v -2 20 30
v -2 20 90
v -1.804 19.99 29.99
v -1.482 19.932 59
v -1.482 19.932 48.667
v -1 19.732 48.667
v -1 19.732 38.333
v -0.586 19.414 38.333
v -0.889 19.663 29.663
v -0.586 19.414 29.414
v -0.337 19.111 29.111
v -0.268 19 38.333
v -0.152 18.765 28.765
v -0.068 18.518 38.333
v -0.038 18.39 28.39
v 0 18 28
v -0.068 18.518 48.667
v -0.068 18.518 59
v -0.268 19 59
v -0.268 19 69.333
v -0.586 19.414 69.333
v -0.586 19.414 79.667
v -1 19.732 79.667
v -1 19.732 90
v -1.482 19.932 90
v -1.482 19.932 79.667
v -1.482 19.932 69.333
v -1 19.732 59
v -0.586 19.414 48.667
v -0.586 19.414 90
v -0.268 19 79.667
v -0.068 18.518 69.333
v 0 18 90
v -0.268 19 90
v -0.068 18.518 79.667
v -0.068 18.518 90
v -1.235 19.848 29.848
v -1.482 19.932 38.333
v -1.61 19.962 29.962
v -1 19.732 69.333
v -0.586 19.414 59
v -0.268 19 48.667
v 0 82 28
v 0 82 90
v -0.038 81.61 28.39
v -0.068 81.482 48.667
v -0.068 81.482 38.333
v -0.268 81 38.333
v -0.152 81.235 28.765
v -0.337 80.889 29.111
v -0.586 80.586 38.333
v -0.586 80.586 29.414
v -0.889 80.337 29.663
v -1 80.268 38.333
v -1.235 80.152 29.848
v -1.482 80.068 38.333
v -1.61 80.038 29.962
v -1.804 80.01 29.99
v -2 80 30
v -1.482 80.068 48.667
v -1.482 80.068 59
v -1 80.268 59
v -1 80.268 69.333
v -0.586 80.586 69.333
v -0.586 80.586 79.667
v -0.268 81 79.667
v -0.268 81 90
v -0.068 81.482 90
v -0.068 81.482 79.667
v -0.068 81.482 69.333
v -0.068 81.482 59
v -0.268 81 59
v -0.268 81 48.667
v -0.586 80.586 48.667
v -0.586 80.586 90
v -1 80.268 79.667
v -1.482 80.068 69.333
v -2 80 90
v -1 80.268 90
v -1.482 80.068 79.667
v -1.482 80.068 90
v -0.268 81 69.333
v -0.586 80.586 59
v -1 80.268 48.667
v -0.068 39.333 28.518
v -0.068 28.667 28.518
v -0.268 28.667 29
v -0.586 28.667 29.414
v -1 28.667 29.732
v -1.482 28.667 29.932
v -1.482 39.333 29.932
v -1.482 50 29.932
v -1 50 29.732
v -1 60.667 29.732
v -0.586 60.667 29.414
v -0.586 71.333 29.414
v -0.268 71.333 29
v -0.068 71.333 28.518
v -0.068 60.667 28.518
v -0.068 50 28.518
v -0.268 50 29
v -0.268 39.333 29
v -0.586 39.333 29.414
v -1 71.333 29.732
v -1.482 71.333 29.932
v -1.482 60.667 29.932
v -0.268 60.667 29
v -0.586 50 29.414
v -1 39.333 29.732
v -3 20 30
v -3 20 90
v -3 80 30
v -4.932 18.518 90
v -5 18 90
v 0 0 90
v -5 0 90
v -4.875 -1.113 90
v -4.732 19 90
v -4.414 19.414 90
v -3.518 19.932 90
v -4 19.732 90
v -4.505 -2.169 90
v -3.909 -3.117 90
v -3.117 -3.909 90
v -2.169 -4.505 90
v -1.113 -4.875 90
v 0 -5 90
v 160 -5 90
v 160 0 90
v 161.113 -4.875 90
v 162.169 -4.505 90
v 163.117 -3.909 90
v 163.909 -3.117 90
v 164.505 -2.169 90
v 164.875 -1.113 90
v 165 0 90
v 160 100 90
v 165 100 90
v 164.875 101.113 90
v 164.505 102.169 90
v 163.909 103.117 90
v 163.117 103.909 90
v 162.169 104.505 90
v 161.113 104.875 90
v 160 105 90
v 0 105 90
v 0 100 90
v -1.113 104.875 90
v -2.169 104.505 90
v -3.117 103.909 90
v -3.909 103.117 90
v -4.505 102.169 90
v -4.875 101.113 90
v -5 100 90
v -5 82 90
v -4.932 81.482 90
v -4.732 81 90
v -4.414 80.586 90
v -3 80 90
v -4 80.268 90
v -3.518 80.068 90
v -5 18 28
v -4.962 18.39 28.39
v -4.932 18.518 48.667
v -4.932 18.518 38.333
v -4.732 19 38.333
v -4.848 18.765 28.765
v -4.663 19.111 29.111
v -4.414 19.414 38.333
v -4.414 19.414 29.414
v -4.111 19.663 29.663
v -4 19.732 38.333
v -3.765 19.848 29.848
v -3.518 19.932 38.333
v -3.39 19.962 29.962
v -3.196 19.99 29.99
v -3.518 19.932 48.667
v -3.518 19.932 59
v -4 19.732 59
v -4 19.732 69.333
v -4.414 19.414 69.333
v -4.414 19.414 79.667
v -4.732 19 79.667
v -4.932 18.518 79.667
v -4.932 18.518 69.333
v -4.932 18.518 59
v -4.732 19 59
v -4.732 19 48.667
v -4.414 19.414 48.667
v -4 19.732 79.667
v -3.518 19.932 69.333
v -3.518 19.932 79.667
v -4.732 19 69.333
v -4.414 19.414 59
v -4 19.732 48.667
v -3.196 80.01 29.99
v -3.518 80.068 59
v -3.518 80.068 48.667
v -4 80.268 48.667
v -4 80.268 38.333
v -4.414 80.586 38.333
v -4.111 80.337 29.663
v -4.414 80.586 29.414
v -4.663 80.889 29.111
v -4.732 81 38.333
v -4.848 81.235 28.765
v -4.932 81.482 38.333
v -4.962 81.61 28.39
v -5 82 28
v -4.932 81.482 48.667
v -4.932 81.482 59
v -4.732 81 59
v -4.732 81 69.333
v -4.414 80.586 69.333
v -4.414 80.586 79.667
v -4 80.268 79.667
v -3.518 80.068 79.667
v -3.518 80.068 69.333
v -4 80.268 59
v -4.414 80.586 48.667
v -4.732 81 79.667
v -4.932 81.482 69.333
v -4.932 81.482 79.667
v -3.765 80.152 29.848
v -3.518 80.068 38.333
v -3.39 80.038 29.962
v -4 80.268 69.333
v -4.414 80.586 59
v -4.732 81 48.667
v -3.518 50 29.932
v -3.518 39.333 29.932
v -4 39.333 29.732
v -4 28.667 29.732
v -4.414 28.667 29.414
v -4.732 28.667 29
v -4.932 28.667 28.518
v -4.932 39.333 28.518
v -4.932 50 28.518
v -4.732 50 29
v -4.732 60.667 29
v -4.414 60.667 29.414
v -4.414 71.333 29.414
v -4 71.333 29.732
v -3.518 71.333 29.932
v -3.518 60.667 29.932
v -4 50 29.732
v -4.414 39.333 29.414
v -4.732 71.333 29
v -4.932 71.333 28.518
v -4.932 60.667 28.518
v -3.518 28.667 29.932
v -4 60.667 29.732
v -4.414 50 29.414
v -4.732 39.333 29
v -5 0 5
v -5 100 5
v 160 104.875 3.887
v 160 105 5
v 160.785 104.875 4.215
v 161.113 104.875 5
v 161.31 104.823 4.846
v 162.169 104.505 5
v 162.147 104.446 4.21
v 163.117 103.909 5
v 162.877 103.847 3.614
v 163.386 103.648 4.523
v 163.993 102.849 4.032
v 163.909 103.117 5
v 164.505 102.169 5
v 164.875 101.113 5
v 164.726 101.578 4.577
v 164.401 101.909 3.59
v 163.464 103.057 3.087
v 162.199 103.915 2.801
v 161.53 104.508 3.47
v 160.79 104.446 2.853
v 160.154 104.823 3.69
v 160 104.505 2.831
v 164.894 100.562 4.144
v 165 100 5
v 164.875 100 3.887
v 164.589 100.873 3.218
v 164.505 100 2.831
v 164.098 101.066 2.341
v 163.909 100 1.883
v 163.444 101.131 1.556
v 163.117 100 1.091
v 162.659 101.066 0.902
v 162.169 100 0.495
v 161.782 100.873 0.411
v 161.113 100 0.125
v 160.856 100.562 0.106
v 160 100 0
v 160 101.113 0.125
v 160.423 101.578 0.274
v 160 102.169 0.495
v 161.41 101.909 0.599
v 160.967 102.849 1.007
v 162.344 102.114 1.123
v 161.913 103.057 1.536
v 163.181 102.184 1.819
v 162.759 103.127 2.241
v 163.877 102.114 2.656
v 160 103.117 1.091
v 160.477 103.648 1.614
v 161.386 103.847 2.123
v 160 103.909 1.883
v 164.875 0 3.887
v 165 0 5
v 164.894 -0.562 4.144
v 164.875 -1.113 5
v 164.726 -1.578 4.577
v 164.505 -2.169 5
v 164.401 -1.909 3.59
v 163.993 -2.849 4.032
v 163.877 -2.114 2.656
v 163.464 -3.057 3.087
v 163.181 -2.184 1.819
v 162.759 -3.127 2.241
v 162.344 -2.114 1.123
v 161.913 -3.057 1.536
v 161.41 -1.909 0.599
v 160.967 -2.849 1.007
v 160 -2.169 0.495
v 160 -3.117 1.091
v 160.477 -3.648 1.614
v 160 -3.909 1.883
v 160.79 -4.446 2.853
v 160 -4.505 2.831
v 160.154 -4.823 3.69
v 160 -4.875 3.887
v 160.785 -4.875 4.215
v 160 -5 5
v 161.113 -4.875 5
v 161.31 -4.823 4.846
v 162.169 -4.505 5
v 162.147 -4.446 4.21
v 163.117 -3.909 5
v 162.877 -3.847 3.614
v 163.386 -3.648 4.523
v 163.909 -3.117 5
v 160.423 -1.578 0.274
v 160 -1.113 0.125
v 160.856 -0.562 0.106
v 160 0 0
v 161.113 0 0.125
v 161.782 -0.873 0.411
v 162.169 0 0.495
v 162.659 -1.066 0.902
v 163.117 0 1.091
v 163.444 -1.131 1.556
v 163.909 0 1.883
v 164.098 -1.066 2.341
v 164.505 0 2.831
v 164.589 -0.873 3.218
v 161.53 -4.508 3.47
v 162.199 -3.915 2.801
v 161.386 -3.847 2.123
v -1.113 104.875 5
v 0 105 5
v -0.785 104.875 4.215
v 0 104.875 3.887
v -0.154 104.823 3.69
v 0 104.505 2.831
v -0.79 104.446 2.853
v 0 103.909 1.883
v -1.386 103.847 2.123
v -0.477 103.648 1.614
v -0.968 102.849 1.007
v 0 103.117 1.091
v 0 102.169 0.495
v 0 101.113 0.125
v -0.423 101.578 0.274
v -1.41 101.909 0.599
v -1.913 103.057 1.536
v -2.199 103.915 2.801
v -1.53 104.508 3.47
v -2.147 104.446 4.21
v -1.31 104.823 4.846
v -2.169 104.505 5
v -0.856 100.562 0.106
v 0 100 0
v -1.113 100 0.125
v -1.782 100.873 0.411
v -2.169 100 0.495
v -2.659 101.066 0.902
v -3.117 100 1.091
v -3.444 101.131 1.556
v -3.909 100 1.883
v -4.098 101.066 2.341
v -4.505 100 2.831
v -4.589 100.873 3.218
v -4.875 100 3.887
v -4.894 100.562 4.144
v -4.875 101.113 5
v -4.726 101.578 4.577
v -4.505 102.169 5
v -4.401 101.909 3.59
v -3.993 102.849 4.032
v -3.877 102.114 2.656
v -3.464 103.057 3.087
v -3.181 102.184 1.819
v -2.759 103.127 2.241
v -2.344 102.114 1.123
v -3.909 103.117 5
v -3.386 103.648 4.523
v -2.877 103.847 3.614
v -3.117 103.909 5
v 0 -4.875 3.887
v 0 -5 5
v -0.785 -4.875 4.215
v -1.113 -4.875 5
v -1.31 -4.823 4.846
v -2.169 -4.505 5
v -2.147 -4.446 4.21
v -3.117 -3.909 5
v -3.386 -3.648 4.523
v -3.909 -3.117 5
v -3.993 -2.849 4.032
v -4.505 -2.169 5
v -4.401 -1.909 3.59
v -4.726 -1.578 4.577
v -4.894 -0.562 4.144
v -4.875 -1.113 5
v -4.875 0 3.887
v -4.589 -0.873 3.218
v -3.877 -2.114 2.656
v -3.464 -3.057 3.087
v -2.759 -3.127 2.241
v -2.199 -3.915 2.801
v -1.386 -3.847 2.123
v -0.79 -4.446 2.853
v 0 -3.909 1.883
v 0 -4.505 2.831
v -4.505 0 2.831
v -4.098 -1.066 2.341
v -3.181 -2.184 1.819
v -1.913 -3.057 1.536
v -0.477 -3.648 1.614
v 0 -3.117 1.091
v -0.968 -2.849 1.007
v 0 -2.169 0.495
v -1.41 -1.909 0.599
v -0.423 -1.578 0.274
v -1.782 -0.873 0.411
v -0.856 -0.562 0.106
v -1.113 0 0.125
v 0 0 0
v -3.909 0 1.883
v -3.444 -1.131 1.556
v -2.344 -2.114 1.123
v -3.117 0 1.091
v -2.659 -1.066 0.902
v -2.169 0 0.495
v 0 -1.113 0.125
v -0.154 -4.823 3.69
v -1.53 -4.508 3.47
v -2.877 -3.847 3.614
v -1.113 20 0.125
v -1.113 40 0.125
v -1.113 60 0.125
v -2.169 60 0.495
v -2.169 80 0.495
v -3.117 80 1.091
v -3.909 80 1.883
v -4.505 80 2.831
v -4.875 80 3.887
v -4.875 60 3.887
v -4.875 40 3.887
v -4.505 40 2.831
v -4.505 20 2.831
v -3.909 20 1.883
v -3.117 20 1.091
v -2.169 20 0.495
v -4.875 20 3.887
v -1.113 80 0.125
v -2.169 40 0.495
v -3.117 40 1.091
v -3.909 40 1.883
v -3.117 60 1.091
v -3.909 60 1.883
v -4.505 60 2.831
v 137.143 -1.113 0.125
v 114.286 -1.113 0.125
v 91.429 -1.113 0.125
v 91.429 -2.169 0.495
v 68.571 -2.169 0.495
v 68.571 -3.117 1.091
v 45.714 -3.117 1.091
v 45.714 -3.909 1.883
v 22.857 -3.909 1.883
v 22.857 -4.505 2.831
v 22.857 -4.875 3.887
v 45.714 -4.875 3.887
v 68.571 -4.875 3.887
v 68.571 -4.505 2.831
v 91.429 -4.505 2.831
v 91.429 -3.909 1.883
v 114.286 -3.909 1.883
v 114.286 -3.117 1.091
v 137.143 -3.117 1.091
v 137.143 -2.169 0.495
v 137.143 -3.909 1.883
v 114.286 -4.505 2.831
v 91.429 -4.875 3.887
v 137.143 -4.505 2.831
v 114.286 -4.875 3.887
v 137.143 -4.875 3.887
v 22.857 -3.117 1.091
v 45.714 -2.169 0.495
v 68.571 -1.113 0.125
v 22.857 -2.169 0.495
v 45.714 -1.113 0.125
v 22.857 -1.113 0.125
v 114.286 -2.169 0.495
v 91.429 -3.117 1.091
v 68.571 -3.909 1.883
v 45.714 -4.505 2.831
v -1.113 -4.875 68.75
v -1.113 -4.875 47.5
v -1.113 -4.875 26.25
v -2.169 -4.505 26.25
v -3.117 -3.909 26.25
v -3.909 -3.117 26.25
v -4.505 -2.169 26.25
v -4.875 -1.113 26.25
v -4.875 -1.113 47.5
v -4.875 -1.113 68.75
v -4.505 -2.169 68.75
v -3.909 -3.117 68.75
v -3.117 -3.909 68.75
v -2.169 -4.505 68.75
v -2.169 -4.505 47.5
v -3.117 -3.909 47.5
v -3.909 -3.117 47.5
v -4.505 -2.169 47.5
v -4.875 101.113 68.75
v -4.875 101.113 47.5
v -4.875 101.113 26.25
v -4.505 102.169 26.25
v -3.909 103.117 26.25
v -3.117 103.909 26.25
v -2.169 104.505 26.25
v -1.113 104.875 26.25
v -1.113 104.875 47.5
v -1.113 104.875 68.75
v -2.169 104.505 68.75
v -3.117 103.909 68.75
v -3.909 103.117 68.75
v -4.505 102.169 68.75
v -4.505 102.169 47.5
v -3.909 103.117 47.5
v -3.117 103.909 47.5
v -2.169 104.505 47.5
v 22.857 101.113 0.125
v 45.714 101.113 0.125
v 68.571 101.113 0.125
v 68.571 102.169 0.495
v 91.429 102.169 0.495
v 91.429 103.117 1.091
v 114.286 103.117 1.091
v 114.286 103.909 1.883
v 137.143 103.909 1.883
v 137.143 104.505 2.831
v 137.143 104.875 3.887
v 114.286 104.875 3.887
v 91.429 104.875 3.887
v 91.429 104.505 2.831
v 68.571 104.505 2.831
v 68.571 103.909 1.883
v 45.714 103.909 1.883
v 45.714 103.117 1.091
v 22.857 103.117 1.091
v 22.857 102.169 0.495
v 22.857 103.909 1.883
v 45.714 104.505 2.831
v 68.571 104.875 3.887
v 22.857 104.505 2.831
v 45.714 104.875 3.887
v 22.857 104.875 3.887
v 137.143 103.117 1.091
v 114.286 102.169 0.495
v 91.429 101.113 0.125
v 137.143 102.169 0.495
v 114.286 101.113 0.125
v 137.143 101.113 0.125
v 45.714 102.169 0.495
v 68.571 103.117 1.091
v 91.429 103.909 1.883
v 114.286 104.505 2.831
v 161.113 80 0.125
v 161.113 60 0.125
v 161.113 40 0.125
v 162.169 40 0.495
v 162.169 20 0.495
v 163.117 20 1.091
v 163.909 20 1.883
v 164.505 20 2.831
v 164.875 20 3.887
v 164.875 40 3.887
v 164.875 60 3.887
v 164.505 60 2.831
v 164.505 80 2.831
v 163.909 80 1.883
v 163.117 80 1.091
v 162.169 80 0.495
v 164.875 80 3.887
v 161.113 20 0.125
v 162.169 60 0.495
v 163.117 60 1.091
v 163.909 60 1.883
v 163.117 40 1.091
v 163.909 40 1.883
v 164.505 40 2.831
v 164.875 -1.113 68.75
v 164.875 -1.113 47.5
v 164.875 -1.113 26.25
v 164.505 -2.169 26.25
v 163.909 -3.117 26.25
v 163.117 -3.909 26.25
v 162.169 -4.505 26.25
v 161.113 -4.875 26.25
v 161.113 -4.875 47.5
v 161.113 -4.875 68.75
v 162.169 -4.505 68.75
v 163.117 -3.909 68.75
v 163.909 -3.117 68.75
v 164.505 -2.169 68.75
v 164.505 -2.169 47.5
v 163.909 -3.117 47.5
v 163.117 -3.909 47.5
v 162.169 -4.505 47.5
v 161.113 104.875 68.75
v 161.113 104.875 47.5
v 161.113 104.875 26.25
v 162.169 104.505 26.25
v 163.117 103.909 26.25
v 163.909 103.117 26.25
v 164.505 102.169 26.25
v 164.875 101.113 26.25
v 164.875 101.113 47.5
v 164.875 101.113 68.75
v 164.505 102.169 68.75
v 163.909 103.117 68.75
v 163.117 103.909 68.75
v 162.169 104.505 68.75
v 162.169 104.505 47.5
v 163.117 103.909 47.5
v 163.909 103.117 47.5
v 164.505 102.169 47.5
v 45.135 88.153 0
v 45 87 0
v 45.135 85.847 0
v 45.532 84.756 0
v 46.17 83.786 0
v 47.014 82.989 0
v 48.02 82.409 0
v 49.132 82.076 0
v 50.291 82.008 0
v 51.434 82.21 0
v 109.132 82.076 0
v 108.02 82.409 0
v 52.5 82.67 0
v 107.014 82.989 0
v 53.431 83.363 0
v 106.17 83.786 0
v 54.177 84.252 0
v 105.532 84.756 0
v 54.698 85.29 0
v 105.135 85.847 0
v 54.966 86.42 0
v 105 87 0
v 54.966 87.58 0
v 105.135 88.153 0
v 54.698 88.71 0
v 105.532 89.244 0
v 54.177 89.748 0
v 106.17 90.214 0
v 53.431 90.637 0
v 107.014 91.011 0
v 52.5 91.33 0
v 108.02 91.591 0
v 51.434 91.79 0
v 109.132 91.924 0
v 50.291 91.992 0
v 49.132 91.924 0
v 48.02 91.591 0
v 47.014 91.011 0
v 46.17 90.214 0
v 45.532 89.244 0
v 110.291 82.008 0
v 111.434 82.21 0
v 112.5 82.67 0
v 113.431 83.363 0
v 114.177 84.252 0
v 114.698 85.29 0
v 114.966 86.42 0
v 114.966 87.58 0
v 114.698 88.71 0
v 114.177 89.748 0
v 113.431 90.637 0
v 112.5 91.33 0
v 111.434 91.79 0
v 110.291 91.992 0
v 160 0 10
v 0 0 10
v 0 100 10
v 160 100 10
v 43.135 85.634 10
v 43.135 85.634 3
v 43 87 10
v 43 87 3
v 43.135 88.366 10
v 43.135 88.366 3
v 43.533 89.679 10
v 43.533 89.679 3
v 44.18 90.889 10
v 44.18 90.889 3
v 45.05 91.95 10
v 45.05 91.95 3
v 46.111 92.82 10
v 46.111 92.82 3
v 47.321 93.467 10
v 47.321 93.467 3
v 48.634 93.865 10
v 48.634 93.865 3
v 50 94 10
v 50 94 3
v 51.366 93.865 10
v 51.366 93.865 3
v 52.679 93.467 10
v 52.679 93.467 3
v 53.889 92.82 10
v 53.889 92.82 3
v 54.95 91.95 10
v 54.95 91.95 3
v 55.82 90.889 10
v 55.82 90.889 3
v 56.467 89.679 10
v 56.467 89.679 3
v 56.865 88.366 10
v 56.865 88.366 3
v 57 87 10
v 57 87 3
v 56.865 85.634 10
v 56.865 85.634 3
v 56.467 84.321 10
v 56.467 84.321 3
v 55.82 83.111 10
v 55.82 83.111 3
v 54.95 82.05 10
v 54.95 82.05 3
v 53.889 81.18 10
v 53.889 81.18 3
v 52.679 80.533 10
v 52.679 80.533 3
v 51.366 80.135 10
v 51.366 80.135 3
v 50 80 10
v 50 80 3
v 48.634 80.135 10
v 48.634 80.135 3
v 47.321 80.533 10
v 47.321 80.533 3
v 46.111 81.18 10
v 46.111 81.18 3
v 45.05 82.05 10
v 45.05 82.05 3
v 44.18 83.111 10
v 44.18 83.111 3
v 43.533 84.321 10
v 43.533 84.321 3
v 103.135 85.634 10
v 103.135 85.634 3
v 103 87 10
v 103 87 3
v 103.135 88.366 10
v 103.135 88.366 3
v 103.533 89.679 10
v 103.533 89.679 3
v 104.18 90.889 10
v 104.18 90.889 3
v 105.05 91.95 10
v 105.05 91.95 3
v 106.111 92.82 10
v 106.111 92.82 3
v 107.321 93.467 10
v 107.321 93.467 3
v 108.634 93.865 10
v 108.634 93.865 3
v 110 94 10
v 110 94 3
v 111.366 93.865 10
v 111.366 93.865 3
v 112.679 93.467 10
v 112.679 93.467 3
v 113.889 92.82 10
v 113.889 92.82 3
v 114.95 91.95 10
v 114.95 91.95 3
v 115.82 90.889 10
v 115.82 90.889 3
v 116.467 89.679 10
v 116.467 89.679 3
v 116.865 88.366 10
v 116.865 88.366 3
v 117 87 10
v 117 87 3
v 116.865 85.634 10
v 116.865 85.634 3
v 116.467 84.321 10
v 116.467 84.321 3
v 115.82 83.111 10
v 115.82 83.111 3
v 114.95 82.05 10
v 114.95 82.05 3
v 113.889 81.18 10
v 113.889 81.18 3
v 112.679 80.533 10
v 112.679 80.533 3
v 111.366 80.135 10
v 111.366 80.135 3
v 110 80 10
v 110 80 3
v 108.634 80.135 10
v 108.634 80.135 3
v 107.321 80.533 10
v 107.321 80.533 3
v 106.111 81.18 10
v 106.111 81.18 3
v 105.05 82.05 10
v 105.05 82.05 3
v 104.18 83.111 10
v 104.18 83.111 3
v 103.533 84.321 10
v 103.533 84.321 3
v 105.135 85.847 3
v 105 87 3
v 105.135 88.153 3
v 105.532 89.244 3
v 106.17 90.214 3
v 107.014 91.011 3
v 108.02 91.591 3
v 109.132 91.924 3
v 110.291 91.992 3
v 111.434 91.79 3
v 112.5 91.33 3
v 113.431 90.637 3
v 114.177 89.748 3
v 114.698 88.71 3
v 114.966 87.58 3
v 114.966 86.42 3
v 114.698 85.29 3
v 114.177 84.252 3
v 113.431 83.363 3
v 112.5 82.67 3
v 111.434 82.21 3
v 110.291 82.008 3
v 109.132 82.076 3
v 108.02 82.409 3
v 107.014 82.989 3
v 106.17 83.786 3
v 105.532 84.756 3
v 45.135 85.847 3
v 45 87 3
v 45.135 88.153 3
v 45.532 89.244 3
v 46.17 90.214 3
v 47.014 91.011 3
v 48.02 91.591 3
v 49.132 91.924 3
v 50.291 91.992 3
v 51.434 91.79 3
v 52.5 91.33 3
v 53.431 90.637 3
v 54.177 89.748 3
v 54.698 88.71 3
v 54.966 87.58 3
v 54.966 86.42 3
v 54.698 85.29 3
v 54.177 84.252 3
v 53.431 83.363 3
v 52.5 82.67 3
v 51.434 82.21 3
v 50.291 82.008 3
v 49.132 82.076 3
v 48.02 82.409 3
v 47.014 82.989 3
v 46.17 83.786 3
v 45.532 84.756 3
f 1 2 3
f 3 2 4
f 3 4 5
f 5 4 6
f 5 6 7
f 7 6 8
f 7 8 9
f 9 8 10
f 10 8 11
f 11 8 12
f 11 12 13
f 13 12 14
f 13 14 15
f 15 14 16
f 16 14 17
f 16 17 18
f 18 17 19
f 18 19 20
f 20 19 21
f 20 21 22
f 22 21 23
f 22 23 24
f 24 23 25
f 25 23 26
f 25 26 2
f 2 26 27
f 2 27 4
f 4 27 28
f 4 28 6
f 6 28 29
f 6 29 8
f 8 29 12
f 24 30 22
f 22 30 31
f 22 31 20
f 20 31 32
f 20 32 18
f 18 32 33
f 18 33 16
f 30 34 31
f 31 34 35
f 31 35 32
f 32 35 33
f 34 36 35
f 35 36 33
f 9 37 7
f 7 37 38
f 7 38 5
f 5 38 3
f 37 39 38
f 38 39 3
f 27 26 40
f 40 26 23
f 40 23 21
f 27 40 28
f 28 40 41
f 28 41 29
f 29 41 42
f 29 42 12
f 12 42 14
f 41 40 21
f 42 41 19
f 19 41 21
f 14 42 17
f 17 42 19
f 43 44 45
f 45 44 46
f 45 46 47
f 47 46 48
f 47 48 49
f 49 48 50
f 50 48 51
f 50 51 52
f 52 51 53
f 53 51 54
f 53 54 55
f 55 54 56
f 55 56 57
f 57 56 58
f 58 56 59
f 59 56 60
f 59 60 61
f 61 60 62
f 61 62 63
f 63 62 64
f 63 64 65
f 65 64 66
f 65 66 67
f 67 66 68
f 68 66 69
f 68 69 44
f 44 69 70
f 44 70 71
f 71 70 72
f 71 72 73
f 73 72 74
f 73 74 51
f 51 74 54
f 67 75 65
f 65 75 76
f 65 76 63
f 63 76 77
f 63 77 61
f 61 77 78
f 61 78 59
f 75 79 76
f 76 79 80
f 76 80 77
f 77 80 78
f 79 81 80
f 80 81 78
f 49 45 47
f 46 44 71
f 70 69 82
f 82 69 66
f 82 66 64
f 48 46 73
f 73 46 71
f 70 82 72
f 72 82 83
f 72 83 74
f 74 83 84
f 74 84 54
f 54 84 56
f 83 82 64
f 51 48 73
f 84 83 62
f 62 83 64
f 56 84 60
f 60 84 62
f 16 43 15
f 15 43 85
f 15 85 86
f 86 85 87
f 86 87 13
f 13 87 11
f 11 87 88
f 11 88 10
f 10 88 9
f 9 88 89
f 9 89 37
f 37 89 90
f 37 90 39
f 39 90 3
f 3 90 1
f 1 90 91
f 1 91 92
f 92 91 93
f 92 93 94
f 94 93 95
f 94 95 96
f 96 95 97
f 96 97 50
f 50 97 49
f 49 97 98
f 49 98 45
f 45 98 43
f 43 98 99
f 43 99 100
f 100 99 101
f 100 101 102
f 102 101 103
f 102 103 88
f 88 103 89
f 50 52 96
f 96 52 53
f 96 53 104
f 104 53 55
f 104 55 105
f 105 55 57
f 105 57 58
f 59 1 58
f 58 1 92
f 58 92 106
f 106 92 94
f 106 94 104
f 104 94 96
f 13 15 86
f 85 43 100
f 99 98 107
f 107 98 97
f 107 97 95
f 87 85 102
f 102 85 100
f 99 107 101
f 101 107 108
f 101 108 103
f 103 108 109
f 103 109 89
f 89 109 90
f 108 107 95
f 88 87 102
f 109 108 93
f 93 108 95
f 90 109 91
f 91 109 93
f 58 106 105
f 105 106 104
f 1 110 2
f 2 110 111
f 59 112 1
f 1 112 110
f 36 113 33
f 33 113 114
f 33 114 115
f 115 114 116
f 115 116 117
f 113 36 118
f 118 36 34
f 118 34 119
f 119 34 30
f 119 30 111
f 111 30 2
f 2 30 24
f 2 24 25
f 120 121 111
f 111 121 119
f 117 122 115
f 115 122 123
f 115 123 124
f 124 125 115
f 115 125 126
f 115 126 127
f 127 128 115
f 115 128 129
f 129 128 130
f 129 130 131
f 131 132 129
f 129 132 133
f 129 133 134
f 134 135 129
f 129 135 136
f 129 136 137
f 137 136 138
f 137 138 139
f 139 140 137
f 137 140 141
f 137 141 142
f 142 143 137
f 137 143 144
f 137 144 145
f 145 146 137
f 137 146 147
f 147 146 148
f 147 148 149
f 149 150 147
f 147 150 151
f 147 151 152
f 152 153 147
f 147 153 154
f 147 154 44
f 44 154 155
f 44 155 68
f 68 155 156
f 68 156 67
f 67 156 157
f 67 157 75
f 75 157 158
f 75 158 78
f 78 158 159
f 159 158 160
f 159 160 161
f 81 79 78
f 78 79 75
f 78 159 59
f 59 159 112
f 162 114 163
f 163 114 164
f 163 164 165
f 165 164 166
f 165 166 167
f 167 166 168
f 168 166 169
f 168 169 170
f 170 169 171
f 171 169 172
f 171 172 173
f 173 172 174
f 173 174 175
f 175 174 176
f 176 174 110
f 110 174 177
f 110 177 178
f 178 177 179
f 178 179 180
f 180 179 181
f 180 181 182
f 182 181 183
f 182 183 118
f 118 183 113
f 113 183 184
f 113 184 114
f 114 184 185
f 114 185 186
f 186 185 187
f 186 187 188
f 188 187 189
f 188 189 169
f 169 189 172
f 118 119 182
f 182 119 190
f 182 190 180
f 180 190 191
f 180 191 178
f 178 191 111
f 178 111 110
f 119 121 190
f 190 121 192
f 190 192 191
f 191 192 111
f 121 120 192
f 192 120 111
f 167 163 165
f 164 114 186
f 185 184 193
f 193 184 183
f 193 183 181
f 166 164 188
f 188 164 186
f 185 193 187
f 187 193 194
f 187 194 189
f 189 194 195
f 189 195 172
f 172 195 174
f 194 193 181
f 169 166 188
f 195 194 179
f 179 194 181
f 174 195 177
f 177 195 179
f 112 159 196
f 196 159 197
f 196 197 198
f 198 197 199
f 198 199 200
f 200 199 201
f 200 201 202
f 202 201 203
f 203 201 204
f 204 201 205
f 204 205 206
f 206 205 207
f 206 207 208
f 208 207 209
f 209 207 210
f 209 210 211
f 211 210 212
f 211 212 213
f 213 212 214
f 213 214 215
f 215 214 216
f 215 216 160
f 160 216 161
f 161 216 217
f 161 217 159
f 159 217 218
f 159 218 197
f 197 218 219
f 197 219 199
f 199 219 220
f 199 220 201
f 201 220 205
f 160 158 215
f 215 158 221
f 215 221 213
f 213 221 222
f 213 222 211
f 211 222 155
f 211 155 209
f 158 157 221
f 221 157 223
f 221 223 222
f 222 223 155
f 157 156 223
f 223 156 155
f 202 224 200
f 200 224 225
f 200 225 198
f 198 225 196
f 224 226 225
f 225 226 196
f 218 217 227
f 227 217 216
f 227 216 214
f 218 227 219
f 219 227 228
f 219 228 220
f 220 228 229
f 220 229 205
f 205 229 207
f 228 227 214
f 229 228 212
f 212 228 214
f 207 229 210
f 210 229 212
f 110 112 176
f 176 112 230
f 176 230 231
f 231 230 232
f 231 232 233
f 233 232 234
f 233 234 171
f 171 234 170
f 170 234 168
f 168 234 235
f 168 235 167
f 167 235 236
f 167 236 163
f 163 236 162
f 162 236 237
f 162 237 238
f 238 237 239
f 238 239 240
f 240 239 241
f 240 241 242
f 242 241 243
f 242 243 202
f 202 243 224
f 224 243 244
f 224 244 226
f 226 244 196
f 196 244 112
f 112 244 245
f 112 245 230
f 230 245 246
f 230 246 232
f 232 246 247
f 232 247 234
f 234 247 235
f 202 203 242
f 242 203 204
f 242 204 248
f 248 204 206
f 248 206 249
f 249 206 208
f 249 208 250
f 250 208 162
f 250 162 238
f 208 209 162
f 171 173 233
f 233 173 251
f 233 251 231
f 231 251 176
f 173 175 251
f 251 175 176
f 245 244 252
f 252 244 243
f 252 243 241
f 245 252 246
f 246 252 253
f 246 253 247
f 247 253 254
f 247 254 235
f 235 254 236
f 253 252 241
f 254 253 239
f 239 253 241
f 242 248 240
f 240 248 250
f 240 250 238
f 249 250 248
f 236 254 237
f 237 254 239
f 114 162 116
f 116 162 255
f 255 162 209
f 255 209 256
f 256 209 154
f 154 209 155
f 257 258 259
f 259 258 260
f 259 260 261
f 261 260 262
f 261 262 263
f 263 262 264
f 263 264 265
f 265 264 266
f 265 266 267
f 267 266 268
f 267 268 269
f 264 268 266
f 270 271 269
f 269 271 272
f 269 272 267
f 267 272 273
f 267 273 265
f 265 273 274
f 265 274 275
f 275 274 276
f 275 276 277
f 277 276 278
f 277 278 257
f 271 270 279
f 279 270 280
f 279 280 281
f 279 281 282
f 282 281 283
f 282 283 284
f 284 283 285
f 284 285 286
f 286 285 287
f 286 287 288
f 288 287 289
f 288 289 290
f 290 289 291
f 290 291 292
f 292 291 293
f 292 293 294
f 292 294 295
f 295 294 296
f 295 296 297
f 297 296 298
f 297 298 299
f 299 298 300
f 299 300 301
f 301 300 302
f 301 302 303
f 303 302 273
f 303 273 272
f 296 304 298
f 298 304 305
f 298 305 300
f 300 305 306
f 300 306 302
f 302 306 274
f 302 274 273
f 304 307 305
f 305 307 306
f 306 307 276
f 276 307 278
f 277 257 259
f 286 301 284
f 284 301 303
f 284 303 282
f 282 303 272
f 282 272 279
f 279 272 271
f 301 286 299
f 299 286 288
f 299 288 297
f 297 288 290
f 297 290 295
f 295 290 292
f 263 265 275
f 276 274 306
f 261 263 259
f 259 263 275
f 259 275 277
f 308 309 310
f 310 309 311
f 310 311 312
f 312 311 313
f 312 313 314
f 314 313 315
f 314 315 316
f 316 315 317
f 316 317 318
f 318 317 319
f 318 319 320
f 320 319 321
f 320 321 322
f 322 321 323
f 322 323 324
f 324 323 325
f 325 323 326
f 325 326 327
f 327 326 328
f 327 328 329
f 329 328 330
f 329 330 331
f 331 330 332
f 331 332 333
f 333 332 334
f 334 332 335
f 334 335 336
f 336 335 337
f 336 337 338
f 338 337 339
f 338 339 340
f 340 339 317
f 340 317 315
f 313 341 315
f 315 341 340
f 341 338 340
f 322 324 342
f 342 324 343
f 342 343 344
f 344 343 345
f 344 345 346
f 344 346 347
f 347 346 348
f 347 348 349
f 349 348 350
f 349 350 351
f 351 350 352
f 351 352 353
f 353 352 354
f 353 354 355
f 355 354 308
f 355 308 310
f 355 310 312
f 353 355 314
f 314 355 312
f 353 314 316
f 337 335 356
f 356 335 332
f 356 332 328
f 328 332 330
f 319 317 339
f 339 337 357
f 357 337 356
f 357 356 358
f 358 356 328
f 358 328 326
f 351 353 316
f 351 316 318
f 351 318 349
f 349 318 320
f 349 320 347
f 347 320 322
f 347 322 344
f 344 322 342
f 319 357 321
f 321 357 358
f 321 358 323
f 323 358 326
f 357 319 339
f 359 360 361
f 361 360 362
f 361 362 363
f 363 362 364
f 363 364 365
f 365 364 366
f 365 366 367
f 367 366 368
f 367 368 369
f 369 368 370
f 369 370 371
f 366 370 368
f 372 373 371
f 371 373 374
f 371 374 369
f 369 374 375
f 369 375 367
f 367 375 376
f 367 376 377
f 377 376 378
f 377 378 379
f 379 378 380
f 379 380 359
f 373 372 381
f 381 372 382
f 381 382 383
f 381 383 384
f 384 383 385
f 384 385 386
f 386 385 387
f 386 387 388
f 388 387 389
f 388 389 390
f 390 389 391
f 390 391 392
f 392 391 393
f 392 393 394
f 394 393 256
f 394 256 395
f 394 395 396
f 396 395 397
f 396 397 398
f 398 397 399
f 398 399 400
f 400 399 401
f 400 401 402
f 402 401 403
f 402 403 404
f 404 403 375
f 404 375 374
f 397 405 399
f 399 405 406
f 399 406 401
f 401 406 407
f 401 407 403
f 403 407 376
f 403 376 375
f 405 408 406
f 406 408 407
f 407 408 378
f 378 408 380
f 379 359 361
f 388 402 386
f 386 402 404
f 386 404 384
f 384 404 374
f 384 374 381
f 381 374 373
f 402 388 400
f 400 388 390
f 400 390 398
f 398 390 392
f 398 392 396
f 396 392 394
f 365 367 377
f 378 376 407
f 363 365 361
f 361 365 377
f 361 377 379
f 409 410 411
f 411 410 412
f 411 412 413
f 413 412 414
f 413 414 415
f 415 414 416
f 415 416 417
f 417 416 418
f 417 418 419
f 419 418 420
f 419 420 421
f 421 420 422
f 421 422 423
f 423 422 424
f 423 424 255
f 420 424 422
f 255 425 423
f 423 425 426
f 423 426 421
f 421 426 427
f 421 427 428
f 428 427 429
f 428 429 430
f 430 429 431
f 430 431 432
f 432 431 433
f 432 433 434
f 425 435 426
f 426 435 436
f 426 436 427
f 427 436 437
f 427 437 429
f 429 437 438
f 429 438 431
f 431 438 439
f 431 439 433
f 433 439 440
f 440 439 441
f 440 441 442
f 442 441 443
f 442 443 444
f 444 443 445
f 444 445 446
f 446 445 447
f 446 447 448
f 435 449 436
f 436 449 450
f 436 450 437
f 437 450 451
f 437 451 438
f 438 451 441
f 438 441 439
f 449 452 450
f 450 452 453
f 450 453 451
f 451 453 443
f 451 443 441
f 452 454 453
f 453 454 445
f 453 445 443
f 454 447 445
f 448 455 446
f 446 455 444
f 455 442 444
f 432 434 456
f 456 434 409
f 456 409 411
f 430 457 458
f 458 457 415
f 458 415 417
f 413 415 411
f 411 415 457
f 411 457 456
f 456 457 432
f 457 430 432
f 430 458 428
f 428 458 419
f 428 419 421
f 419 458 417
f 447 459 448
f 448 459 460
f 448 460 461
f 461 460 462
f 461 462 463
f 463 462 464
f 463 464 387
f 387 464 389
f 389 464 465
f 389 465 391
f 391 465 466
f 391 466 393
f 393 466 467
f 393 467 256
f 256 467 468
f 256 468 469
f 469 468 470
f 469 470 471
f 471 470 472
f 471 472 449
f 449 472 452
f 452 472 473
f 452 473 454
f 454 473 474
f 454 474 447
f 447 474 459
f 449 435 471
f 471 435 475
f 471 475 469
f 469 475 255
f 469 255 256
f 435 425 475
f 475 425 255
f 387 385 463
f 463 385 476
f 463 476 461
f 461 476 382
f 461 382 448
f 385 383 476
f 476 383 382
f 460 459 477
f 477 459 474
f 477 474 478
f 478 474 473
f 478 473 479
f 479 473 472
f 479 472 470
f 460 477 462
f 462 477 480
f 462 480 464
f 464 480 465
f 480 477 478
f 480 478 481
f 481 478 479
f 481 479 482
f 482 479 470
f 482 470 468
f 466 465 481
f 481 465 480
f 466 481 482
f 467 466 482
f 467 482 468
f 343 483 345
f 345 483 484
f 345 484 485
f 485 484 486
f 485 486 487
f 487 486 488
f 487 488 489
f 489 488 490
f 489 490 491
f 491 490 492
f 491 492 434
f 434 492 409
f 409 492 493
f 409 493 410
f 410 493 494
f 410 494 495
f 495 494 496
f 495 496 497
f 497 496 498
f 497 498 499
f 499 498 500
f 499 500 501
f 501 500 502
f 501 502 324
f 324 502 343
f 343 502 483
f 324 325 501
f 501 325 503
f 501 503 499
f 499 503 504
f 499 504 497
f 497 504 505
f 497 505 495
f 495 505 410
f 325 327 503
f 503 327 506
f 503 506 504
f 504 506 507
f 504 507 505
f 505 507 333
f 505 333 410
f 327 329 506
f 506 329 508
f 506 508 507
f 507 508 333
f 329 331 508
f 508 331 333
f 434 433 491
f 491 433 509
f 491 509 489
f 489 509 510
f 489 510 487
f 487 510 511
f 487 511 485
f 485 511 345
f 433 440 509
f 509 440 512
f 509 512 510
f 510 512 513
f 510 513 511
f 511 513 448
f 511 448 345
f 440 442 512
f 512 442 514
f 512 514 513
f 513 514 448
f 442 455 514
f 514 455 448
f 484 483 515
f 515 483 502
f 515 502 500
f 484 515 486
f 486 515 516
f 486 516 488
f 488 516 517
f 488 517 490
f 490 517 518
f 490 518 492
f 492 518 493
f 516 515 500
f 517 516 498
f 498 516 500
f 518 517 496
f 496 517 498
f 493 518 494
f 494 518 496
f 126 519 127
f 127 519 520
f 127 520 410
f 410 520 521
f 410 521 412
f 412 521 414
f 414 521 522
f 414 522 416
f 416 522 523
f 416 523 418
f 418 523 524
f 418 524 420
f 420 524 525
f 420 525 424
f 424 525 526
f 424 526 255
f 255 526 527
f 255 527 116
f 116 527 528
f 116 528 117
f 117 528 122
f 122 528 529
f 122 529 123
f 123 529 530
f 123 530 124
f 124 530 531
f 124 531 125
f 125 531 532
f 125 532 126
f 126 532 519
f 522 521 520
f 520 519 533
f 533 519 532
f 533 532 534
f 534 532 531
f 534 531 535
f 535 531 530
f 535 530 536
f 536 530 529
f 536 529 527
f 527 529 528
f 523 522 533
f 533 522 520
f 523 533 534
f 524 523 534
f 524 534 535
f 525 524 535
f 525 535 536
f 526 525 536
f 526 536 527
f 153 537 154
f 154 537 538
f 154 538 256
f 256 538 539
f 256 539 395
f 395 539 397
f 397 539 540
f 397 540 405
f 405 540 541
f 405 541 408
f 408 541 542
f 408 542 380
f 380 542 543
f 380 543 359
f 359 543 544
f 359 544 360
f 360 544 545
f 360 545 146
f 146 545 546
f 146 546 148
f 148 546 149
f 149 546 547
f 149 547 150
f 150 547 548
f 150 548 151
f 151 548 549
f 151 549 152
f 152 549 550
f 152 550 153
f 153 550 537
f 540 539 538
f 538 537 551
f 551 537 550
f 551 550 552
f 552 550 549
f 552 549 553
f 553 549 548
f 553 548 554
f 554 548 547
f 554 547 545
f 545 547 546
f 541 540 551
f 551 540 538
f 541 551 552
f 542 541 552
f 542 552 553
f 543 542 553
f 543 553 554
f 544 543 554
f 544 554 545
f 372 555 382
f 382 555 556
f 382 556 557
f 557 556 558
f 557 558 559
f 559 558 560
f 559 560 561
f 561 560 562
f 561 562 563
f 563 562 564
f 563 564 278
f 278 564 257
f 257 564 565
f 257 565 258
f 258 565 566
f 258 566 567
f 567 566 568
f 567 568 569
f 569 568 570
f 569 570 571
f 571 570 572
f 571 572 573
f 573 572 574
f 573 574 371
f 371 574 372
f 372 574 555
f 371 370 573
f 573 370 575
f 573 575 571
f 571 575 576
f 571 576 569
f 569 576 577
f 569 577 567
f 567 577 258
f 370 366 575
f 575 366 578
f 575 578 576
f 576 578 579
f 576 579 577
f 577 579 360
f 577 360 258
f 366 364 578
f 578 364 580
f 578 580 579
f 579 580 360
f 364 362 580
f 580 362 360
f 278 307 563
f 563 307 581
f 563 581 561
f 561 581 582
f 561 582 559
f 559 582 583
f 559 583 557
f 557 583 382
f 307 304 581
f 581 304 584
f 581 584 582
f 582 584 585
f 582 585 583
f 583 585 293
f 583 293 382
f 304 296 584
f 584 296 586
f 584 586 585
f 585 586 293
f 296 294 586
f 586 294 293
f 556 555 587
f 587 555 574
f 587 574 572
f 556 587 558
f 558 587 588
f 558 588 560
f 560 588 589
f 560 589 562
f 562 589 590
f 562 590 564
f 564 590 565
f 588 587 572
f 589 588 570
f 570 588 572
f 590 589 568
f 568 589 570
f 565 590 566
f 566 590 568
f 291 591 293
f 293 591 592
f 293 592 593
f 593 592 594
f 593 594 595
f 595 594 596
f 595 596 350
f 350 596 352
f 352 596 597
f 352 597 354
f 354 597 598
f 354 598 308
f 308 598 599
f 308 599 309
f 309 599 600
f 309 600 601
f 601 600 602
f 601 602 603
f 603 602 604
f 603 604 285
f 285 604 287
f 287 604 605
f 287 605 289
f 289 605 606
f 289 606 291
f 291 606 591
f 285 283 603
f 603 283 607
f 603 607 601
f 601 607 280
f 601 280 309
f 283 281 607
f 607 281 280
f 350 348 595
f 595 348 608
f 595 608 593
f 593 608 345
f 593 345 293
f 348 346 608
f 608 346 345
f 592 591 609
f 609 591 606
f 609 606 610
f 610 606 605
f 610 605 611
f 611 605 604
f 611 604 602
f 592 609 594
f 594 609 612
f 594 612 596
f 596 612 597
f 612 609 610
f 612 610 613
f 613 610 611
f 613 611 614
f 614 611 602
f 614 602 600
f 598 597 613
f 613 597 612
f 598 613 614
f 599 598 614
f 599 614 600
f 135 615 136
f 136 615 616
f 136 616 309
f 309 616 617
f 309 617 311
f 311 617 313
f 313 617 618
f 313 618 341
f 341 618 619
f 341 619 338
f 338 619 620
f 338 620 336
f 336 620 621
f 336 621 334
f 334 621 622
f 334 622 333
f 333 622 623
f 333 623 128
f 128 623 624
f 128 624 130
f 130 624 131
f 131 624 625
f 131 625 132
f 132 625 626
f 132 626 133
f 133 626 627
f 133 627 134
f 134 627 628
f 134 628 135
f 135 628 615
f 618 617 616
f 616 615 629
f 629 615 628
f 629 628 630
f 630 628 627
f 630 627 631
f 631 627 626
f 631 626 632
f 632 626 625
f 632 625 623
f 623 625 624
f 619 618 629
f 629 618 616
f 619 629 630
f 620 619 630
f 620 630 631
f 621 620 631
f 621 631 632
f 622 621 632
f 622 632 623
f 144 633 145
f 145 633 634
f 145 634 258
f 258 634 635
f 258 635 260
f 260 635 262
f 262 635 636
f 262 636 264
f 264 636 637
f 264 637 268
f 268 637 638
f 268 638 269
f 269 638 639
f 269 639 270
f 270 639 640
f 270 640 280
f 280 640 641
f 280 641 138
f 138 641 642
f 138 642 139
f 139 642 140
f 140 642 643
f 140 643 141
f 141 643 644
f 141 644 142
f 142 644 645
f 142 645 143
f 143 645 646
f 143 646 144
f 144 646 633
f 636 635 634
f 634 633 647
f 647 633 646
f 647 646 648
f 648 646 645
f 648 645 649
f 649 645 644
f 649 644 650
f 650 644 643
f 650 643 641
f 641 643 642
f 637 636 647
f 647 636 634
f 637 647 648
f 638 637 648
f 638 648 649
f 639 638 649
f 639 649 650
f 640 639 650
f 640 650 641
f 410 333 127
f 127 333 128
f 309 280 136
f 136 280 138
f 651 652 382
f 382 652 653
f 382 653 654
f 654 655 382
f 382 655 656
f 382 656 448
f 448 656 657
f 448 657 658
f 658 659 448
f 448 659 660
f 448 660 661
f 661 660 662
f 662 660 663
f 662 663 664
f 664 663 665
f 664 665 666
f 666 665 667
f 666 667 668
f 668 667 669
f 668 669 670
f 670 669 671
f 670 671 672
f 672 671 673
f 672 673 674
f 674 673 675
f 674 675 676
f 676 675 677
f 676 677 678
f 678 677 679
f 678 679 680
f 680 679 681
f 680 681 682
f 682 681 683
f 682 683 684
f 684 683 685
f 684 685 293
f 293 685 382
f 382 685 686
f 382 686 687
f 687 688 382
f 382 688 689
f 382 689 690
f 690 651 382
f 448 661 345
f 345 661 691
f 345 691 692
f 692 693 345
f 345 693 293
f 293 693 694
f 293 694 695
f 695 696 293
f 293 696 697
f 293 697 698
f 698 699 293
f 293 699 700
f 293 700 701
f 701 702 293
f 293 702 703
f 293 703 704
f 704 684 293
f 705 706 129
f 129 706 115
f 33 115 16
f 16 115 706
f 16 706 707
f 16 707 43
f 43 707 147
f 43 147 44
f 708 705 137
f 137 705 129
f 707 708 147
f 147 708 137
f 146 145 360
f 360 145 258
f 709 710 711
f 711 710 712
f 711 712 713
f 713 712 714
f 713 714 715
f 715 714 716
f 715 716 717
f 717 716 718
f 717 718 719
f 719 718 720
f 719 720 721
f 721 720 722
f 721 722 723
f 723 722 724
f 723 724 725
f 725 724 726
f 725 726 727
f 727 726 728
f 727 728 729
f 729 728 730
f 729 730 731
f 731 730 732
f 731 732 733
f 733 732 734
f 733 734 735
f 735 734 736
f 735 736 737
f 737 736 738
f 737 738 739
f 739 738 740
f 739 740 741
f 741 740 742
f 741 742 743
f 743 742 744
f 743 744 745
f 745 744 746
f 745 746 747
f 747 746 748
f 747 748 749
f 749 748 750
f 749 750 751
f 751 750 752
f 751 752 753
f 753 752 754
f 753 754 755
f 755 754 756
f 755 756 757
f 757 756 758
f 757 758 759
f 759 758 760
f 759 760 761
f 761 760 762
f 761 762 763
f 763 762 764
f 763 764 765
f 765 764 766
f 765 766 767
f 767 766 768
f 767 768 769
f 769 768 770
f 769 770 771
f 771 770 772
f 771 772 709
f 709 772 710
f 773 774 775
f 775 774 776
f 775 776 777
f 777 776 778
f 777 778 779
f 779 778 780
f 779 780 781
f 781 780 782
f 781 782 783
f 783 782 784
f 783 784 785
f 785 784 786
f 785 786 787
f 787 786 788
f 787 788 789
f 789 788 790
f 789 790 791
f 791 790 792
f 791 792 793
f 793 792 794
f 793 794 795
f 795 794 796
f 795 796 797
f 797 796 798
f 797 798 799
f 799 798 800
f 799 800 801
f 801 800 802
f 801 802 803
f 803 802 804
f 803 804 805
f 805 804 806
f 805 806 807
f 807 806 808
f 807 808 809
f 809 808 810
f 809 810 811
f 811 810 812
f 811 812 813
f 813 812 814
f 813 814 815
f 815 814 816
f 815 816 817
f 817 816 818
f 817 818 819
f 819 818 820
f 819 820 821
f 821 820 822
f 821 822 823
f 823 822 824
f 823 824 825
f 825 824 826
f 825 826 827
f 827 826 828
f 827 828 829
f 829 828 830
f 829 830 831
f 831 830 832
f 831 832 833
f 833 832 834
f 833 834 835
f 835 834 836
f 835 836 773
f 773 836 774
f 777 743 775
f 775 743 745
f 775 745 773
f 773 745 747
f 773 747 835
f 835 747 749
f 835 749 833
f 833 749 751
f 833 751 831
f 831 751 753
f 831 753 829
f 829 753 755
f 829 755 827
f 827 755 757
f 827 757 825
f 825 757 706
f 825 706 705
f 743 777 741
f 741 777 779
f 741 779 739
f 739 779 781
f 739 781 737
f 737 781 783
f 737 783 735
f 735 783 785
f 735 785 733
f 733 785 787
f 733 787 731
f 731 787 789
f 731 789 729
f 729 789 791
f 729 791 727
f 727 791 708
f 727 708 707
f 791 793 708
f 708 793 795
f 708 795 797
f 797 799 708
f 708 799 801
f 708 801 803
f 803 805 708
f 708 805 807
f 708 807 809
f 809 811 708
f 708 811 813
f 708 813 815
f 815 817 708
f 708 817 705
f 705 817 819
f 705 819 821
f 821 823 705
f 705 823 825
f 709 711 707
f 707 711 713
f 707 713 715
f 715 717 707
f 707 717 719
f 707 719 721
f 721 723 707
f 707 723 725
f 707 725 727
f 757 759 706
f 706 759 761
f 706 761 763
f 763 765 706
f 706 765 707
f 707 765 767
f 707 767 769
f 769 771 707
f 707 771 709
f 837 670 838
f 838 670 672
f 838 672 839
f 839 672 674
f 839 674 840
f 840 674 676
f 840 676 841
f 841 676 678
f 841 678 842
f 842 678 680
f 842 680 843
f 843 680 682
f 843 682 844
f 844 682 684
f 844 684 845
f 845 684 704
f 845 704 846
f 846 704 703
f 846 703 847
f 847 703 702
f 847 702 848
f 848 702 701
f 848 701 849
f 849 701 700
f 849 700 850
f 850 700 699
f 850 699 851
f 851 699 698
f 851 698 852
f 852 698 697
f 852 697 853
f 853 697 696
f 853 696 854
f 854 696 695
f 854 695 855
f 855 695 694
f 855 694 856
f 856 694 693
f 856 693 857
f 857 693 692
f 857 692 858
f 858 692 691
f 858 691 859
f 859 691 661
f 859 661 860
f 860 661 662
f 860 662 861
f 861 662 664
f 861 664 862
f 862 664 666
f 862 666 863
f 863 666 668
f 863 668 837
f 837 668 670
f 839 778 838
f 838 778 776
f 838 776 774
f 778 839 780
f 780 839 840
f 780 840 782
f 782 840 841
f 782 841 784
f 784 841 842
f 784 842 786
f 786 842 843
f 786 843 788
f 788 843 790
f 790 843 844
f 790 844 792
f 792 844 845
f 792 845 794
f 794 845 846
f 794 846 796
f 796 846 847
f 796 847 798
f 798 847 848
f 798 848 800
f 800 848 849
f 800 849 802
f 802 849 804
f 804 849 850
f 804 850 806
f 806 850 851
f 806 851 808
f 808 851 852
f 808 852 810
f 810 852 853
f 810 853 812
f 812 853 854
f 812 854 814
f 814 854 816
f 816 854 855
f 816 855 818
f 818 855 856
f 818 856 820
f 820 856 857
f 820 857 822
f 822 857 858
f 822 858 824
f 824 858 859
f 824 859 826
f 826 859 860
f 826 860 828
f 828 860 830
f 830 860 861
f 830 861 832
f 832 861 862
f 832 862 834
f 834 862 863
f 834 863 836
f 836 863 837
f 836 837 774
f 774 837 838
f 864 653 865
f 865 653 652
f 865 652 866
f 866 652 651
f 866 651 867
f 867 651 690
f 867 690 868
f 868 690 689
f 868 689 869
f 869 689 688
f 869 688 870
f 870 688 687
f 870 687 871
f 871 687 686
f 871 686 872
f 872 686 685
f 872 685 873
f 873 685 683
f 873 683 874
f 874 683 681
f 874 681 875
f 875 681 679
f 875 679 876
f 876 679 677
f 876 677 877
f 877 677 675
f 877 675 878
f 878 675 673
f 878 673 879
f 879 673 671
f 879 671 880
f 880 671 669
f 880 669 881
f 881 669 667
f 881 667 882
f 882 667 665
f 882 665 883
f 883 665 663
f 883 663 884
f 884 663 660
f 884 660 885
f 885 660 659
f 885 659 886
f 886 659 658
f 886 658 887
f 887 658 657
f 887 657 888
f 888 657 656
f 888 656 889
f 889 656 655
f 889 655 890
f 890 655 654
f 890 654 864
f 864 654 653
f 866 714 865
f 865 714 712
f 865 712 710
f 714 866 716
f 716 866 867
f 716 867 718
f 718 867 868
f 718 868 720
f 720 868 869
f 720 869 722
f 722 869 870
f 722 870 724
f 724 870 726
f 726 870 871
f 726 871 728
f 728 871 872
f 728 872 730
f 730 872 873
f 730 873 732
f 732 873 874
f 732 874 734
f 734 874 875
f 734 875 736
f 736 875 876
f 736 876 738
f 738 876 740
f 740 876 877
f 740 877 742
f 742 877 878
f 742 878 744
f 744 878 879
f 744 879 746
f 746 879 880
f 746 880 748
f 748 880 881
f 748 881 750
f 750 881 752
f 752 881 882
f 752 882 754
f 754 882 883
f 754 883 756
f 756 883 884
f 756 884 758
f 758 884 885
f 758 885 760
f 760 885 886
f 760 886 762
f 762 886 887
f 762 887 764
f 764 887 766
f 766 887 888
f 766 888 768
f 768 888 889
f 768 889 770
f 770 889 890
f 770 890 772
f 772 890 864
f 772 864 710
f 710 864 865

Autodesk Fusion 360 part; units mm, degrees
sketch "Sketch1" plane through (0, 0, 0) normal (0, 0, 1) x (1, 0, 0)
  line L0 (0, 0) -> (160, 0)
  line L1 (160, 0) -> (160, 100)
  line L2 (160, 100) -> (0, 100)
  line L3 (0, 100) -> (0, 0)
  line L4 (-5, -5) -> (165, -5)
  line L5 (165, -5) -> (165, 105)
  line L6 (165, 105) -> (-5, 105)
  line L7 (-5, 105) -> (-5, -5)
  circle A0 centre (50, 87) radius 5
  circle A1 centre (50, 87) radius 7
  circle A2 centre (110, 87) radius 5
  circle A3 centre (110, 87) radius 7
  dimension "d1" = 160
  dimension "d2" = 100
  dimension "d3" = 14
  dimension "d4" = 10
  dimension "d5" = 14
extrude "Extrude1" add sketch "Sketch1" along normal blind 3 contours A1 makes body 1
extrude "Extrude2" add sketch "Sketch1" along normal blind 3 separate body contours A3 makes body 2
extrude "Extrude3" add sketch "Sketch1" along normal blind 10 contours L0 L1 L2 L3 bodies 1 2
extrude "Extrude4" add sketch "Sketch1" along normal blind 90 contours L4 L5 L6 L7 bodies 1
sketch "Sketch2" plane through (0, 0, 90) normal (0, 0, 1) x (-1, 0, 0)
  line L0 (0, 0) -> (0, -100)
  line L1 (0, -100) -> (-160, -100)
  line L2 (-160, -100) -> (-160, 0)
  line L3 (-160, 0) -> (0, 0)
  line L4 (5, -105) -> (5, 5)
  line L5 (5, 5) -> (-165, 5)
  line L6 (-165, 5) -> (-165, -105)
  line L7 (-165, -105) -> (5, -105)
  line L8 (5, -80) -> (0, -80)
  line L9 (0, -80) -> (0, -20)
  line L10 (0, -20) -> (5, -20)
  line L11 (5, -20) -> (5, -80)
extrude "Extrude5" cut sketch "Sketch2" against normal blind 60 contours L0 L4 L8 L9 L10 L11 bodies 1
fillet "Fillet1" radius 5 8 edges at (-5, -5, 45) (-5, 50, 0) (80, -5, 0) (165, -5, 45) (165, 50, 0) (165, 105, 45) (80, 105, 0) (-5, 105, 45) on bodies 1
fillet "Fillet1" radius 2 6 edges at (-5, 80, 60) (0, 80, 60) (-5, 20, 60) (0, 20, 60) (-5, 50, 30) (0, 50, 30) on bodies 1
